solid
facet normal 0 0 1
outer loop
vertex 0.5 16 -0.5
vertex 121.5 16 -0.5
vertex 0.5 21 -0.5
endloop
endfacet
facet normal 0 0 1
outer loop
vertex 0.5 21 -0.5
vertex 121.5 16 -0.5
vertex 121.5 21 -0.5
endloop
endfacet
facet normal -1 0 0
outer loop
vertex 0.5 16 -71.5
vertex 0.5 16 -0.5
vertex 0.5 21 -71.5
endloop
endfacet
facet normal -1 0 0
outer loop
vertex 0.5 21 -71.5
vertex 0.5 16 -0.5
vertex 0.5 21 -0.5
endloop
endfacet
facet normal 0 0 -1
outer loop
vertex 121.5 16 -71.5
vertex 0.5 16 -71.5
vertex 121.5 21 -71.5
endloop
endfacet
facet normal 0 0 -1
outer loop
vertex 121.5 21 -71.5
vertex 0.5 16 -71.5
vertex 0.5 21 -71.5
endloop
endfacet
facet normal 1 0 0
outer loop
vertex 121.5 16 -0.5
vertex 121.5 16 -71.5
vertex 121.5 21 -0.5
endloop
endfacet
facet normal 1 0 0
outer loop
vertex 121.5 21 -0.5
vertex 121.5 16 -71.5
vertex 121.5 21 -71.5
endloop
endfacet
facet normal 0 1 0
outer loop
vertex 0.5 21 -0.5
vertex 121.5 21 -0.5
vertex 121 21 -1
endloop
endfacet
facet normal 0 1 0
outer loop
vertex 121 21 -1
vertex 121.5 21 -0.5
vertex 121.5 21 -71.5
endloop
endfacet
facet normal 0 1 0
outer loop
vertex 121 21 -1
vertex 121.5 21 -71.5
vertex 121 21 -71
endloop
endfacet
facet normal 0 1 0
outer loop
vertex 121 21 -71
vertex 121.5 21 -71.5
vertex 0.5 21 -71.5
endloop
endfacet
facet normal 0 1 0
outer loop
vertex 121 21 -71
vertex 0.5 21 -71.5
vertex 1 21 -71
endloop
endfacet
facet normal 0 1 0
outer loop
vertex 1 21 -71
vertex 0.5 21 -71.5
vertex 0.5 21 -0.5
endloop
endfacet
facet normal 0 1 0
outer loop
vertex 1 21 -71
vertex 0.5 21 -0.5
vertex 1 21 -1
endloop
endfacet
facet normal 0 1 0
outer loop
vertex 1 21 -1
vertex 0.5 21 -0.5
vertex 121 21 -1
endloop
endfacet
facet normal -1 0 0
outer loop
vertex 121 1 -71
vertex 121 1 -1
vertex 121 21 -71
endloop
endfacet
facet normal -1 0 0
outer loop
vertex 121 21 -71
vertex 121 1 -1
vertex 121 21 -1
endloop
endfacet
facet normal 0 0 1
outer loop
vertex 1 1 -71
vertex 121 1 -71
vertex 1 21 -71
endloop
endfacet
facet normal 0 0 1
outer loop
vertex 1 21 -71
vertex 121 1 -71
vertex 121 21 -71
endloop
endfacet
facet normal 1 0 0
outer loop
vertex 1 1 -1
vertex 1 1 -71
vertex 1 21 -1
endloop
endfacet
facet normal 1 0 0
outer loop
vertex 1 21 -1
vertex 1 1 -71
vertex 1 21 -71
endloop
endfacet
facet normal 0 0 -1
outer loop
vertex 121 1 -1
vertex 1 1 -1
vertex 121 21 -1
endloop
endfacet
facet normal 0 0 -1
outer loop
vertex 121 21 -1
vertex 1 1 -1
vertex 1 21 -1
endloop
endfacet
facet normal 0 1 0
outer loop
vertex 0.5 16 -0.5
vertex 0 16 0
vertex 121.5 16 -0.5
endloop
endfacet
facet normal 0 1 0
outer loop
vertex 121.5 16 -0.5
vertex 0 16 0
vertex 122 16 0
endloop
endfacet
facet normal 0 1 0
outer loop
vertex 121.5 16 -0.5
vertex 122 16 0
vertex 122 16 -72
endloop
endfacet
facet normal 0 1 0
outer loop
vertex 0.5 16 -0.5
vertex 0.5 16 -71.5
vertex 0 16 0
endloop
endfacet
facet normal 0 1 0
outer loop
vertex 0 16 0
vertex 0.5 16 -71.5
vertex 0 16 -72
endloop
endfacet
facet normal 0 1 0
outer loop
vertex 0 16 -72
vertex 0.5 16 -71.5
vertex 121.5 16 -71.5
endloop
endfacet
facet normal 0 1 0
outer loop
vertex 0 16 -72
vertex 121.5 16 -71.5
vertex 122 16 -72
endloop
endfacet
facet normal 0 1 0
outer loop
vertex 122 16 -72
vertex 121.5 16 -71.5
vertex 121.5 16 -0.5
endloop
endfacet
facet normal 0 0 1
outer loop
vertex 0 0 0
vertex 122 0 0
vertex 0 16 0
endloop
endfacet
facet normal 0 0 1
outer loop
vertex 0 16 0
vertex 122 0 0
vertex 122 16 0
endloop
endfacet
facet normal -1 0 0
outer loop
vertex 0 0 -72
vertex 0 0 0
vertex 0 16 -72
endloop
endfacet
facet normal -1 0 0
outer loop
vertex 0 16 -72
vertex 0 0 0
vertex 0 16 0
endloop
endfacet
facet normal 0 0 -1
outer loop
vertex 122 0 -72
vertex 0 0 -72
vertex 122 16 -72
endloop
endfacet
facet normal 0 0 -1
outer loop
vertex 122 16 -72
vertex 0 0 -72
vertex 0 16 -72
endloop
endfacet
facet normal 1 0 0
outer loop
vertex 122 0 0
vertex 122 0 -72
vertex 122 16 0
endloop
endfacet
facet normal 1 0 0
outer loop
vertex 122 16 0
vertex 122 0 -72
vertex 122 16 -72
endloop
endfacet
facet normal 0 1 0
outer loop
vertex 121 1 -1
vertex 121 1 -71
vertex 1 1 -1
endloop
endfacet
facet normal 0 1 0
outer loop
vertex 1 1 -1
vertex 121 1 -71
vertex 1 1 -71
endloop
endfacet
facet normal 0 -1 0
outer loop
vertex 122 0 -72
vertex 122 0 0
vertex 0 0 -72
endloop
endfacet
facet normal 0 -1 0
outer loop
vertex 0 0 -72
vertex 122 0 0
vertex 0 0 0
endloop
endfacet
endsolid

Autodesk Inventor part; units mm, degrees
ref_plane "YZ Plane" through (0, 0, 0) normal (1, 0, 0) x (0, 1, 0)
ref_plane "XZ Plane" through (0, 0, 0) normal (0, 1, 0) x (-1, 0, 0)
ref_plane "XY Plane" through (0, 0, 0) normal (0, 0, 1) x (1, 0, 0)
sketch "Sketch1" plane through (0, 0, 0) normal (0, 1, 0) x (-1, 0, 0)
  point P0 (0, 0)
sketch "Sketch2" plane through (0, 0, 0) normal (0, 1, 0) x (-1, 0, 0)
  line L0 (0, 0) -> (-122, 0)
  line L1 (-122, 0) -> (-122, -72)
  line L2 (-122, -72) -> (0, -72)
  line L3 (0, -72) -> (0, 0)
  dimension "d0" = 122
  dimension "d1" = 72
extrude "Extrusion1" add sketch "Sketch2" along normal blind 1
sketch "Sketch3" plane through (0, 1, 0) normal (0, 1, 0) x (1, 0, 0)
  line L0 (122, 72) -> (0, 72) projected
  line L1 (0, 72) -> (1, 72)
  line L2 (1, 72) -> (1, 71)
  line L3 (1, 71) -> (0, 71)
  line L4 (0, 71) -> (0, 72)
  line L5 (122, 0) -> (122, 72) projected
  line L6 (122, 0) -> (121, 0)
  line L7 (121, 0) -> (121, 1)
  line L8 (121, 1) -> (122, 1)
  line L9 (122, 1) -> (122, 0)
  line L10 (1, 71) -> (121, 71)
  line L11 (121, 71) -> (121, 1)
  line L12 (121, 1) -> (1, 1)
  line L13 (1, 1) -> (1, 71)
  line L14 (0, 71) -> (122, 71)
  line L15 (122, 71) -> (122, 0)
  line L16 (122, 0) -> (0, 0)
  line L17 (0, 0) -> (0, 71)
  dimension "d4" = 1
  dimension "d5" = 1
  dimension "d6" = 1
  dimension "d7" = 1
extrude "Extrusion2" add sketch "Sketch3" along normal blind 15 contours L5 L14 L10 L2 L0 | L2 L3 L4 L0 | L5 L8 L11 L14 | L13 L12 L7 L16 L17 L3 | L5 L6 L7 L8
sketch "Sketch5" plane through (0, 16, 0) normal (0, 1, 0) x (1, 0, 0)
  line L0 (0, 0) -> (122, 0) projected
  line L1 (0, 0) -> (0.5, 0)
  line L2 (0.5, 0) -> (0.5, 0.5)
  line L3 (0.5, 0.5) -> (0, 0.5)
  line L4 (0, 0.5) -> (0, 0)
  line L5 (122, 72) -> (121.5, 72)
  line L6 (121.5, 72) -> (121.5, 71.5)
  line L7 (121.5, 71.5) -> (122, 71.5)
  line L8 (122, 71.5) -> (122, 72)
  line L9 (121.5, 71.5) -> (0.5, 71.5)
  line L10 (0.5, 71.5) -> (0.5, 0.5)
  line L11 (0.5, 0.5) -> (121.5, 0.5)
  line L12 (121.5, 0.5) -> (121.5, 71.5)
  line L13 (121, 71) -> (121, 1) projected
  line L14 (1, 1) -> (1, 71) projected
  line L15 (121, 1) -> (1, 1)
  line L16 (1, 1) -> (1, 71)
  line L17 (1, 71) -> (121, 71)
  line L18 (121, 71) -> (121, 1)
  point P0 (121, 71)
  dimension "d10" = 0.5
  dimension "d11" = 0.5
  dimension "d12" = 0.5
  dimension "d13" = 0.5
extrude "Extrusion3" add sketch "Sketch5" along normal blind 5 contours L10 L9 L12 L11
properties part number "tapa"
